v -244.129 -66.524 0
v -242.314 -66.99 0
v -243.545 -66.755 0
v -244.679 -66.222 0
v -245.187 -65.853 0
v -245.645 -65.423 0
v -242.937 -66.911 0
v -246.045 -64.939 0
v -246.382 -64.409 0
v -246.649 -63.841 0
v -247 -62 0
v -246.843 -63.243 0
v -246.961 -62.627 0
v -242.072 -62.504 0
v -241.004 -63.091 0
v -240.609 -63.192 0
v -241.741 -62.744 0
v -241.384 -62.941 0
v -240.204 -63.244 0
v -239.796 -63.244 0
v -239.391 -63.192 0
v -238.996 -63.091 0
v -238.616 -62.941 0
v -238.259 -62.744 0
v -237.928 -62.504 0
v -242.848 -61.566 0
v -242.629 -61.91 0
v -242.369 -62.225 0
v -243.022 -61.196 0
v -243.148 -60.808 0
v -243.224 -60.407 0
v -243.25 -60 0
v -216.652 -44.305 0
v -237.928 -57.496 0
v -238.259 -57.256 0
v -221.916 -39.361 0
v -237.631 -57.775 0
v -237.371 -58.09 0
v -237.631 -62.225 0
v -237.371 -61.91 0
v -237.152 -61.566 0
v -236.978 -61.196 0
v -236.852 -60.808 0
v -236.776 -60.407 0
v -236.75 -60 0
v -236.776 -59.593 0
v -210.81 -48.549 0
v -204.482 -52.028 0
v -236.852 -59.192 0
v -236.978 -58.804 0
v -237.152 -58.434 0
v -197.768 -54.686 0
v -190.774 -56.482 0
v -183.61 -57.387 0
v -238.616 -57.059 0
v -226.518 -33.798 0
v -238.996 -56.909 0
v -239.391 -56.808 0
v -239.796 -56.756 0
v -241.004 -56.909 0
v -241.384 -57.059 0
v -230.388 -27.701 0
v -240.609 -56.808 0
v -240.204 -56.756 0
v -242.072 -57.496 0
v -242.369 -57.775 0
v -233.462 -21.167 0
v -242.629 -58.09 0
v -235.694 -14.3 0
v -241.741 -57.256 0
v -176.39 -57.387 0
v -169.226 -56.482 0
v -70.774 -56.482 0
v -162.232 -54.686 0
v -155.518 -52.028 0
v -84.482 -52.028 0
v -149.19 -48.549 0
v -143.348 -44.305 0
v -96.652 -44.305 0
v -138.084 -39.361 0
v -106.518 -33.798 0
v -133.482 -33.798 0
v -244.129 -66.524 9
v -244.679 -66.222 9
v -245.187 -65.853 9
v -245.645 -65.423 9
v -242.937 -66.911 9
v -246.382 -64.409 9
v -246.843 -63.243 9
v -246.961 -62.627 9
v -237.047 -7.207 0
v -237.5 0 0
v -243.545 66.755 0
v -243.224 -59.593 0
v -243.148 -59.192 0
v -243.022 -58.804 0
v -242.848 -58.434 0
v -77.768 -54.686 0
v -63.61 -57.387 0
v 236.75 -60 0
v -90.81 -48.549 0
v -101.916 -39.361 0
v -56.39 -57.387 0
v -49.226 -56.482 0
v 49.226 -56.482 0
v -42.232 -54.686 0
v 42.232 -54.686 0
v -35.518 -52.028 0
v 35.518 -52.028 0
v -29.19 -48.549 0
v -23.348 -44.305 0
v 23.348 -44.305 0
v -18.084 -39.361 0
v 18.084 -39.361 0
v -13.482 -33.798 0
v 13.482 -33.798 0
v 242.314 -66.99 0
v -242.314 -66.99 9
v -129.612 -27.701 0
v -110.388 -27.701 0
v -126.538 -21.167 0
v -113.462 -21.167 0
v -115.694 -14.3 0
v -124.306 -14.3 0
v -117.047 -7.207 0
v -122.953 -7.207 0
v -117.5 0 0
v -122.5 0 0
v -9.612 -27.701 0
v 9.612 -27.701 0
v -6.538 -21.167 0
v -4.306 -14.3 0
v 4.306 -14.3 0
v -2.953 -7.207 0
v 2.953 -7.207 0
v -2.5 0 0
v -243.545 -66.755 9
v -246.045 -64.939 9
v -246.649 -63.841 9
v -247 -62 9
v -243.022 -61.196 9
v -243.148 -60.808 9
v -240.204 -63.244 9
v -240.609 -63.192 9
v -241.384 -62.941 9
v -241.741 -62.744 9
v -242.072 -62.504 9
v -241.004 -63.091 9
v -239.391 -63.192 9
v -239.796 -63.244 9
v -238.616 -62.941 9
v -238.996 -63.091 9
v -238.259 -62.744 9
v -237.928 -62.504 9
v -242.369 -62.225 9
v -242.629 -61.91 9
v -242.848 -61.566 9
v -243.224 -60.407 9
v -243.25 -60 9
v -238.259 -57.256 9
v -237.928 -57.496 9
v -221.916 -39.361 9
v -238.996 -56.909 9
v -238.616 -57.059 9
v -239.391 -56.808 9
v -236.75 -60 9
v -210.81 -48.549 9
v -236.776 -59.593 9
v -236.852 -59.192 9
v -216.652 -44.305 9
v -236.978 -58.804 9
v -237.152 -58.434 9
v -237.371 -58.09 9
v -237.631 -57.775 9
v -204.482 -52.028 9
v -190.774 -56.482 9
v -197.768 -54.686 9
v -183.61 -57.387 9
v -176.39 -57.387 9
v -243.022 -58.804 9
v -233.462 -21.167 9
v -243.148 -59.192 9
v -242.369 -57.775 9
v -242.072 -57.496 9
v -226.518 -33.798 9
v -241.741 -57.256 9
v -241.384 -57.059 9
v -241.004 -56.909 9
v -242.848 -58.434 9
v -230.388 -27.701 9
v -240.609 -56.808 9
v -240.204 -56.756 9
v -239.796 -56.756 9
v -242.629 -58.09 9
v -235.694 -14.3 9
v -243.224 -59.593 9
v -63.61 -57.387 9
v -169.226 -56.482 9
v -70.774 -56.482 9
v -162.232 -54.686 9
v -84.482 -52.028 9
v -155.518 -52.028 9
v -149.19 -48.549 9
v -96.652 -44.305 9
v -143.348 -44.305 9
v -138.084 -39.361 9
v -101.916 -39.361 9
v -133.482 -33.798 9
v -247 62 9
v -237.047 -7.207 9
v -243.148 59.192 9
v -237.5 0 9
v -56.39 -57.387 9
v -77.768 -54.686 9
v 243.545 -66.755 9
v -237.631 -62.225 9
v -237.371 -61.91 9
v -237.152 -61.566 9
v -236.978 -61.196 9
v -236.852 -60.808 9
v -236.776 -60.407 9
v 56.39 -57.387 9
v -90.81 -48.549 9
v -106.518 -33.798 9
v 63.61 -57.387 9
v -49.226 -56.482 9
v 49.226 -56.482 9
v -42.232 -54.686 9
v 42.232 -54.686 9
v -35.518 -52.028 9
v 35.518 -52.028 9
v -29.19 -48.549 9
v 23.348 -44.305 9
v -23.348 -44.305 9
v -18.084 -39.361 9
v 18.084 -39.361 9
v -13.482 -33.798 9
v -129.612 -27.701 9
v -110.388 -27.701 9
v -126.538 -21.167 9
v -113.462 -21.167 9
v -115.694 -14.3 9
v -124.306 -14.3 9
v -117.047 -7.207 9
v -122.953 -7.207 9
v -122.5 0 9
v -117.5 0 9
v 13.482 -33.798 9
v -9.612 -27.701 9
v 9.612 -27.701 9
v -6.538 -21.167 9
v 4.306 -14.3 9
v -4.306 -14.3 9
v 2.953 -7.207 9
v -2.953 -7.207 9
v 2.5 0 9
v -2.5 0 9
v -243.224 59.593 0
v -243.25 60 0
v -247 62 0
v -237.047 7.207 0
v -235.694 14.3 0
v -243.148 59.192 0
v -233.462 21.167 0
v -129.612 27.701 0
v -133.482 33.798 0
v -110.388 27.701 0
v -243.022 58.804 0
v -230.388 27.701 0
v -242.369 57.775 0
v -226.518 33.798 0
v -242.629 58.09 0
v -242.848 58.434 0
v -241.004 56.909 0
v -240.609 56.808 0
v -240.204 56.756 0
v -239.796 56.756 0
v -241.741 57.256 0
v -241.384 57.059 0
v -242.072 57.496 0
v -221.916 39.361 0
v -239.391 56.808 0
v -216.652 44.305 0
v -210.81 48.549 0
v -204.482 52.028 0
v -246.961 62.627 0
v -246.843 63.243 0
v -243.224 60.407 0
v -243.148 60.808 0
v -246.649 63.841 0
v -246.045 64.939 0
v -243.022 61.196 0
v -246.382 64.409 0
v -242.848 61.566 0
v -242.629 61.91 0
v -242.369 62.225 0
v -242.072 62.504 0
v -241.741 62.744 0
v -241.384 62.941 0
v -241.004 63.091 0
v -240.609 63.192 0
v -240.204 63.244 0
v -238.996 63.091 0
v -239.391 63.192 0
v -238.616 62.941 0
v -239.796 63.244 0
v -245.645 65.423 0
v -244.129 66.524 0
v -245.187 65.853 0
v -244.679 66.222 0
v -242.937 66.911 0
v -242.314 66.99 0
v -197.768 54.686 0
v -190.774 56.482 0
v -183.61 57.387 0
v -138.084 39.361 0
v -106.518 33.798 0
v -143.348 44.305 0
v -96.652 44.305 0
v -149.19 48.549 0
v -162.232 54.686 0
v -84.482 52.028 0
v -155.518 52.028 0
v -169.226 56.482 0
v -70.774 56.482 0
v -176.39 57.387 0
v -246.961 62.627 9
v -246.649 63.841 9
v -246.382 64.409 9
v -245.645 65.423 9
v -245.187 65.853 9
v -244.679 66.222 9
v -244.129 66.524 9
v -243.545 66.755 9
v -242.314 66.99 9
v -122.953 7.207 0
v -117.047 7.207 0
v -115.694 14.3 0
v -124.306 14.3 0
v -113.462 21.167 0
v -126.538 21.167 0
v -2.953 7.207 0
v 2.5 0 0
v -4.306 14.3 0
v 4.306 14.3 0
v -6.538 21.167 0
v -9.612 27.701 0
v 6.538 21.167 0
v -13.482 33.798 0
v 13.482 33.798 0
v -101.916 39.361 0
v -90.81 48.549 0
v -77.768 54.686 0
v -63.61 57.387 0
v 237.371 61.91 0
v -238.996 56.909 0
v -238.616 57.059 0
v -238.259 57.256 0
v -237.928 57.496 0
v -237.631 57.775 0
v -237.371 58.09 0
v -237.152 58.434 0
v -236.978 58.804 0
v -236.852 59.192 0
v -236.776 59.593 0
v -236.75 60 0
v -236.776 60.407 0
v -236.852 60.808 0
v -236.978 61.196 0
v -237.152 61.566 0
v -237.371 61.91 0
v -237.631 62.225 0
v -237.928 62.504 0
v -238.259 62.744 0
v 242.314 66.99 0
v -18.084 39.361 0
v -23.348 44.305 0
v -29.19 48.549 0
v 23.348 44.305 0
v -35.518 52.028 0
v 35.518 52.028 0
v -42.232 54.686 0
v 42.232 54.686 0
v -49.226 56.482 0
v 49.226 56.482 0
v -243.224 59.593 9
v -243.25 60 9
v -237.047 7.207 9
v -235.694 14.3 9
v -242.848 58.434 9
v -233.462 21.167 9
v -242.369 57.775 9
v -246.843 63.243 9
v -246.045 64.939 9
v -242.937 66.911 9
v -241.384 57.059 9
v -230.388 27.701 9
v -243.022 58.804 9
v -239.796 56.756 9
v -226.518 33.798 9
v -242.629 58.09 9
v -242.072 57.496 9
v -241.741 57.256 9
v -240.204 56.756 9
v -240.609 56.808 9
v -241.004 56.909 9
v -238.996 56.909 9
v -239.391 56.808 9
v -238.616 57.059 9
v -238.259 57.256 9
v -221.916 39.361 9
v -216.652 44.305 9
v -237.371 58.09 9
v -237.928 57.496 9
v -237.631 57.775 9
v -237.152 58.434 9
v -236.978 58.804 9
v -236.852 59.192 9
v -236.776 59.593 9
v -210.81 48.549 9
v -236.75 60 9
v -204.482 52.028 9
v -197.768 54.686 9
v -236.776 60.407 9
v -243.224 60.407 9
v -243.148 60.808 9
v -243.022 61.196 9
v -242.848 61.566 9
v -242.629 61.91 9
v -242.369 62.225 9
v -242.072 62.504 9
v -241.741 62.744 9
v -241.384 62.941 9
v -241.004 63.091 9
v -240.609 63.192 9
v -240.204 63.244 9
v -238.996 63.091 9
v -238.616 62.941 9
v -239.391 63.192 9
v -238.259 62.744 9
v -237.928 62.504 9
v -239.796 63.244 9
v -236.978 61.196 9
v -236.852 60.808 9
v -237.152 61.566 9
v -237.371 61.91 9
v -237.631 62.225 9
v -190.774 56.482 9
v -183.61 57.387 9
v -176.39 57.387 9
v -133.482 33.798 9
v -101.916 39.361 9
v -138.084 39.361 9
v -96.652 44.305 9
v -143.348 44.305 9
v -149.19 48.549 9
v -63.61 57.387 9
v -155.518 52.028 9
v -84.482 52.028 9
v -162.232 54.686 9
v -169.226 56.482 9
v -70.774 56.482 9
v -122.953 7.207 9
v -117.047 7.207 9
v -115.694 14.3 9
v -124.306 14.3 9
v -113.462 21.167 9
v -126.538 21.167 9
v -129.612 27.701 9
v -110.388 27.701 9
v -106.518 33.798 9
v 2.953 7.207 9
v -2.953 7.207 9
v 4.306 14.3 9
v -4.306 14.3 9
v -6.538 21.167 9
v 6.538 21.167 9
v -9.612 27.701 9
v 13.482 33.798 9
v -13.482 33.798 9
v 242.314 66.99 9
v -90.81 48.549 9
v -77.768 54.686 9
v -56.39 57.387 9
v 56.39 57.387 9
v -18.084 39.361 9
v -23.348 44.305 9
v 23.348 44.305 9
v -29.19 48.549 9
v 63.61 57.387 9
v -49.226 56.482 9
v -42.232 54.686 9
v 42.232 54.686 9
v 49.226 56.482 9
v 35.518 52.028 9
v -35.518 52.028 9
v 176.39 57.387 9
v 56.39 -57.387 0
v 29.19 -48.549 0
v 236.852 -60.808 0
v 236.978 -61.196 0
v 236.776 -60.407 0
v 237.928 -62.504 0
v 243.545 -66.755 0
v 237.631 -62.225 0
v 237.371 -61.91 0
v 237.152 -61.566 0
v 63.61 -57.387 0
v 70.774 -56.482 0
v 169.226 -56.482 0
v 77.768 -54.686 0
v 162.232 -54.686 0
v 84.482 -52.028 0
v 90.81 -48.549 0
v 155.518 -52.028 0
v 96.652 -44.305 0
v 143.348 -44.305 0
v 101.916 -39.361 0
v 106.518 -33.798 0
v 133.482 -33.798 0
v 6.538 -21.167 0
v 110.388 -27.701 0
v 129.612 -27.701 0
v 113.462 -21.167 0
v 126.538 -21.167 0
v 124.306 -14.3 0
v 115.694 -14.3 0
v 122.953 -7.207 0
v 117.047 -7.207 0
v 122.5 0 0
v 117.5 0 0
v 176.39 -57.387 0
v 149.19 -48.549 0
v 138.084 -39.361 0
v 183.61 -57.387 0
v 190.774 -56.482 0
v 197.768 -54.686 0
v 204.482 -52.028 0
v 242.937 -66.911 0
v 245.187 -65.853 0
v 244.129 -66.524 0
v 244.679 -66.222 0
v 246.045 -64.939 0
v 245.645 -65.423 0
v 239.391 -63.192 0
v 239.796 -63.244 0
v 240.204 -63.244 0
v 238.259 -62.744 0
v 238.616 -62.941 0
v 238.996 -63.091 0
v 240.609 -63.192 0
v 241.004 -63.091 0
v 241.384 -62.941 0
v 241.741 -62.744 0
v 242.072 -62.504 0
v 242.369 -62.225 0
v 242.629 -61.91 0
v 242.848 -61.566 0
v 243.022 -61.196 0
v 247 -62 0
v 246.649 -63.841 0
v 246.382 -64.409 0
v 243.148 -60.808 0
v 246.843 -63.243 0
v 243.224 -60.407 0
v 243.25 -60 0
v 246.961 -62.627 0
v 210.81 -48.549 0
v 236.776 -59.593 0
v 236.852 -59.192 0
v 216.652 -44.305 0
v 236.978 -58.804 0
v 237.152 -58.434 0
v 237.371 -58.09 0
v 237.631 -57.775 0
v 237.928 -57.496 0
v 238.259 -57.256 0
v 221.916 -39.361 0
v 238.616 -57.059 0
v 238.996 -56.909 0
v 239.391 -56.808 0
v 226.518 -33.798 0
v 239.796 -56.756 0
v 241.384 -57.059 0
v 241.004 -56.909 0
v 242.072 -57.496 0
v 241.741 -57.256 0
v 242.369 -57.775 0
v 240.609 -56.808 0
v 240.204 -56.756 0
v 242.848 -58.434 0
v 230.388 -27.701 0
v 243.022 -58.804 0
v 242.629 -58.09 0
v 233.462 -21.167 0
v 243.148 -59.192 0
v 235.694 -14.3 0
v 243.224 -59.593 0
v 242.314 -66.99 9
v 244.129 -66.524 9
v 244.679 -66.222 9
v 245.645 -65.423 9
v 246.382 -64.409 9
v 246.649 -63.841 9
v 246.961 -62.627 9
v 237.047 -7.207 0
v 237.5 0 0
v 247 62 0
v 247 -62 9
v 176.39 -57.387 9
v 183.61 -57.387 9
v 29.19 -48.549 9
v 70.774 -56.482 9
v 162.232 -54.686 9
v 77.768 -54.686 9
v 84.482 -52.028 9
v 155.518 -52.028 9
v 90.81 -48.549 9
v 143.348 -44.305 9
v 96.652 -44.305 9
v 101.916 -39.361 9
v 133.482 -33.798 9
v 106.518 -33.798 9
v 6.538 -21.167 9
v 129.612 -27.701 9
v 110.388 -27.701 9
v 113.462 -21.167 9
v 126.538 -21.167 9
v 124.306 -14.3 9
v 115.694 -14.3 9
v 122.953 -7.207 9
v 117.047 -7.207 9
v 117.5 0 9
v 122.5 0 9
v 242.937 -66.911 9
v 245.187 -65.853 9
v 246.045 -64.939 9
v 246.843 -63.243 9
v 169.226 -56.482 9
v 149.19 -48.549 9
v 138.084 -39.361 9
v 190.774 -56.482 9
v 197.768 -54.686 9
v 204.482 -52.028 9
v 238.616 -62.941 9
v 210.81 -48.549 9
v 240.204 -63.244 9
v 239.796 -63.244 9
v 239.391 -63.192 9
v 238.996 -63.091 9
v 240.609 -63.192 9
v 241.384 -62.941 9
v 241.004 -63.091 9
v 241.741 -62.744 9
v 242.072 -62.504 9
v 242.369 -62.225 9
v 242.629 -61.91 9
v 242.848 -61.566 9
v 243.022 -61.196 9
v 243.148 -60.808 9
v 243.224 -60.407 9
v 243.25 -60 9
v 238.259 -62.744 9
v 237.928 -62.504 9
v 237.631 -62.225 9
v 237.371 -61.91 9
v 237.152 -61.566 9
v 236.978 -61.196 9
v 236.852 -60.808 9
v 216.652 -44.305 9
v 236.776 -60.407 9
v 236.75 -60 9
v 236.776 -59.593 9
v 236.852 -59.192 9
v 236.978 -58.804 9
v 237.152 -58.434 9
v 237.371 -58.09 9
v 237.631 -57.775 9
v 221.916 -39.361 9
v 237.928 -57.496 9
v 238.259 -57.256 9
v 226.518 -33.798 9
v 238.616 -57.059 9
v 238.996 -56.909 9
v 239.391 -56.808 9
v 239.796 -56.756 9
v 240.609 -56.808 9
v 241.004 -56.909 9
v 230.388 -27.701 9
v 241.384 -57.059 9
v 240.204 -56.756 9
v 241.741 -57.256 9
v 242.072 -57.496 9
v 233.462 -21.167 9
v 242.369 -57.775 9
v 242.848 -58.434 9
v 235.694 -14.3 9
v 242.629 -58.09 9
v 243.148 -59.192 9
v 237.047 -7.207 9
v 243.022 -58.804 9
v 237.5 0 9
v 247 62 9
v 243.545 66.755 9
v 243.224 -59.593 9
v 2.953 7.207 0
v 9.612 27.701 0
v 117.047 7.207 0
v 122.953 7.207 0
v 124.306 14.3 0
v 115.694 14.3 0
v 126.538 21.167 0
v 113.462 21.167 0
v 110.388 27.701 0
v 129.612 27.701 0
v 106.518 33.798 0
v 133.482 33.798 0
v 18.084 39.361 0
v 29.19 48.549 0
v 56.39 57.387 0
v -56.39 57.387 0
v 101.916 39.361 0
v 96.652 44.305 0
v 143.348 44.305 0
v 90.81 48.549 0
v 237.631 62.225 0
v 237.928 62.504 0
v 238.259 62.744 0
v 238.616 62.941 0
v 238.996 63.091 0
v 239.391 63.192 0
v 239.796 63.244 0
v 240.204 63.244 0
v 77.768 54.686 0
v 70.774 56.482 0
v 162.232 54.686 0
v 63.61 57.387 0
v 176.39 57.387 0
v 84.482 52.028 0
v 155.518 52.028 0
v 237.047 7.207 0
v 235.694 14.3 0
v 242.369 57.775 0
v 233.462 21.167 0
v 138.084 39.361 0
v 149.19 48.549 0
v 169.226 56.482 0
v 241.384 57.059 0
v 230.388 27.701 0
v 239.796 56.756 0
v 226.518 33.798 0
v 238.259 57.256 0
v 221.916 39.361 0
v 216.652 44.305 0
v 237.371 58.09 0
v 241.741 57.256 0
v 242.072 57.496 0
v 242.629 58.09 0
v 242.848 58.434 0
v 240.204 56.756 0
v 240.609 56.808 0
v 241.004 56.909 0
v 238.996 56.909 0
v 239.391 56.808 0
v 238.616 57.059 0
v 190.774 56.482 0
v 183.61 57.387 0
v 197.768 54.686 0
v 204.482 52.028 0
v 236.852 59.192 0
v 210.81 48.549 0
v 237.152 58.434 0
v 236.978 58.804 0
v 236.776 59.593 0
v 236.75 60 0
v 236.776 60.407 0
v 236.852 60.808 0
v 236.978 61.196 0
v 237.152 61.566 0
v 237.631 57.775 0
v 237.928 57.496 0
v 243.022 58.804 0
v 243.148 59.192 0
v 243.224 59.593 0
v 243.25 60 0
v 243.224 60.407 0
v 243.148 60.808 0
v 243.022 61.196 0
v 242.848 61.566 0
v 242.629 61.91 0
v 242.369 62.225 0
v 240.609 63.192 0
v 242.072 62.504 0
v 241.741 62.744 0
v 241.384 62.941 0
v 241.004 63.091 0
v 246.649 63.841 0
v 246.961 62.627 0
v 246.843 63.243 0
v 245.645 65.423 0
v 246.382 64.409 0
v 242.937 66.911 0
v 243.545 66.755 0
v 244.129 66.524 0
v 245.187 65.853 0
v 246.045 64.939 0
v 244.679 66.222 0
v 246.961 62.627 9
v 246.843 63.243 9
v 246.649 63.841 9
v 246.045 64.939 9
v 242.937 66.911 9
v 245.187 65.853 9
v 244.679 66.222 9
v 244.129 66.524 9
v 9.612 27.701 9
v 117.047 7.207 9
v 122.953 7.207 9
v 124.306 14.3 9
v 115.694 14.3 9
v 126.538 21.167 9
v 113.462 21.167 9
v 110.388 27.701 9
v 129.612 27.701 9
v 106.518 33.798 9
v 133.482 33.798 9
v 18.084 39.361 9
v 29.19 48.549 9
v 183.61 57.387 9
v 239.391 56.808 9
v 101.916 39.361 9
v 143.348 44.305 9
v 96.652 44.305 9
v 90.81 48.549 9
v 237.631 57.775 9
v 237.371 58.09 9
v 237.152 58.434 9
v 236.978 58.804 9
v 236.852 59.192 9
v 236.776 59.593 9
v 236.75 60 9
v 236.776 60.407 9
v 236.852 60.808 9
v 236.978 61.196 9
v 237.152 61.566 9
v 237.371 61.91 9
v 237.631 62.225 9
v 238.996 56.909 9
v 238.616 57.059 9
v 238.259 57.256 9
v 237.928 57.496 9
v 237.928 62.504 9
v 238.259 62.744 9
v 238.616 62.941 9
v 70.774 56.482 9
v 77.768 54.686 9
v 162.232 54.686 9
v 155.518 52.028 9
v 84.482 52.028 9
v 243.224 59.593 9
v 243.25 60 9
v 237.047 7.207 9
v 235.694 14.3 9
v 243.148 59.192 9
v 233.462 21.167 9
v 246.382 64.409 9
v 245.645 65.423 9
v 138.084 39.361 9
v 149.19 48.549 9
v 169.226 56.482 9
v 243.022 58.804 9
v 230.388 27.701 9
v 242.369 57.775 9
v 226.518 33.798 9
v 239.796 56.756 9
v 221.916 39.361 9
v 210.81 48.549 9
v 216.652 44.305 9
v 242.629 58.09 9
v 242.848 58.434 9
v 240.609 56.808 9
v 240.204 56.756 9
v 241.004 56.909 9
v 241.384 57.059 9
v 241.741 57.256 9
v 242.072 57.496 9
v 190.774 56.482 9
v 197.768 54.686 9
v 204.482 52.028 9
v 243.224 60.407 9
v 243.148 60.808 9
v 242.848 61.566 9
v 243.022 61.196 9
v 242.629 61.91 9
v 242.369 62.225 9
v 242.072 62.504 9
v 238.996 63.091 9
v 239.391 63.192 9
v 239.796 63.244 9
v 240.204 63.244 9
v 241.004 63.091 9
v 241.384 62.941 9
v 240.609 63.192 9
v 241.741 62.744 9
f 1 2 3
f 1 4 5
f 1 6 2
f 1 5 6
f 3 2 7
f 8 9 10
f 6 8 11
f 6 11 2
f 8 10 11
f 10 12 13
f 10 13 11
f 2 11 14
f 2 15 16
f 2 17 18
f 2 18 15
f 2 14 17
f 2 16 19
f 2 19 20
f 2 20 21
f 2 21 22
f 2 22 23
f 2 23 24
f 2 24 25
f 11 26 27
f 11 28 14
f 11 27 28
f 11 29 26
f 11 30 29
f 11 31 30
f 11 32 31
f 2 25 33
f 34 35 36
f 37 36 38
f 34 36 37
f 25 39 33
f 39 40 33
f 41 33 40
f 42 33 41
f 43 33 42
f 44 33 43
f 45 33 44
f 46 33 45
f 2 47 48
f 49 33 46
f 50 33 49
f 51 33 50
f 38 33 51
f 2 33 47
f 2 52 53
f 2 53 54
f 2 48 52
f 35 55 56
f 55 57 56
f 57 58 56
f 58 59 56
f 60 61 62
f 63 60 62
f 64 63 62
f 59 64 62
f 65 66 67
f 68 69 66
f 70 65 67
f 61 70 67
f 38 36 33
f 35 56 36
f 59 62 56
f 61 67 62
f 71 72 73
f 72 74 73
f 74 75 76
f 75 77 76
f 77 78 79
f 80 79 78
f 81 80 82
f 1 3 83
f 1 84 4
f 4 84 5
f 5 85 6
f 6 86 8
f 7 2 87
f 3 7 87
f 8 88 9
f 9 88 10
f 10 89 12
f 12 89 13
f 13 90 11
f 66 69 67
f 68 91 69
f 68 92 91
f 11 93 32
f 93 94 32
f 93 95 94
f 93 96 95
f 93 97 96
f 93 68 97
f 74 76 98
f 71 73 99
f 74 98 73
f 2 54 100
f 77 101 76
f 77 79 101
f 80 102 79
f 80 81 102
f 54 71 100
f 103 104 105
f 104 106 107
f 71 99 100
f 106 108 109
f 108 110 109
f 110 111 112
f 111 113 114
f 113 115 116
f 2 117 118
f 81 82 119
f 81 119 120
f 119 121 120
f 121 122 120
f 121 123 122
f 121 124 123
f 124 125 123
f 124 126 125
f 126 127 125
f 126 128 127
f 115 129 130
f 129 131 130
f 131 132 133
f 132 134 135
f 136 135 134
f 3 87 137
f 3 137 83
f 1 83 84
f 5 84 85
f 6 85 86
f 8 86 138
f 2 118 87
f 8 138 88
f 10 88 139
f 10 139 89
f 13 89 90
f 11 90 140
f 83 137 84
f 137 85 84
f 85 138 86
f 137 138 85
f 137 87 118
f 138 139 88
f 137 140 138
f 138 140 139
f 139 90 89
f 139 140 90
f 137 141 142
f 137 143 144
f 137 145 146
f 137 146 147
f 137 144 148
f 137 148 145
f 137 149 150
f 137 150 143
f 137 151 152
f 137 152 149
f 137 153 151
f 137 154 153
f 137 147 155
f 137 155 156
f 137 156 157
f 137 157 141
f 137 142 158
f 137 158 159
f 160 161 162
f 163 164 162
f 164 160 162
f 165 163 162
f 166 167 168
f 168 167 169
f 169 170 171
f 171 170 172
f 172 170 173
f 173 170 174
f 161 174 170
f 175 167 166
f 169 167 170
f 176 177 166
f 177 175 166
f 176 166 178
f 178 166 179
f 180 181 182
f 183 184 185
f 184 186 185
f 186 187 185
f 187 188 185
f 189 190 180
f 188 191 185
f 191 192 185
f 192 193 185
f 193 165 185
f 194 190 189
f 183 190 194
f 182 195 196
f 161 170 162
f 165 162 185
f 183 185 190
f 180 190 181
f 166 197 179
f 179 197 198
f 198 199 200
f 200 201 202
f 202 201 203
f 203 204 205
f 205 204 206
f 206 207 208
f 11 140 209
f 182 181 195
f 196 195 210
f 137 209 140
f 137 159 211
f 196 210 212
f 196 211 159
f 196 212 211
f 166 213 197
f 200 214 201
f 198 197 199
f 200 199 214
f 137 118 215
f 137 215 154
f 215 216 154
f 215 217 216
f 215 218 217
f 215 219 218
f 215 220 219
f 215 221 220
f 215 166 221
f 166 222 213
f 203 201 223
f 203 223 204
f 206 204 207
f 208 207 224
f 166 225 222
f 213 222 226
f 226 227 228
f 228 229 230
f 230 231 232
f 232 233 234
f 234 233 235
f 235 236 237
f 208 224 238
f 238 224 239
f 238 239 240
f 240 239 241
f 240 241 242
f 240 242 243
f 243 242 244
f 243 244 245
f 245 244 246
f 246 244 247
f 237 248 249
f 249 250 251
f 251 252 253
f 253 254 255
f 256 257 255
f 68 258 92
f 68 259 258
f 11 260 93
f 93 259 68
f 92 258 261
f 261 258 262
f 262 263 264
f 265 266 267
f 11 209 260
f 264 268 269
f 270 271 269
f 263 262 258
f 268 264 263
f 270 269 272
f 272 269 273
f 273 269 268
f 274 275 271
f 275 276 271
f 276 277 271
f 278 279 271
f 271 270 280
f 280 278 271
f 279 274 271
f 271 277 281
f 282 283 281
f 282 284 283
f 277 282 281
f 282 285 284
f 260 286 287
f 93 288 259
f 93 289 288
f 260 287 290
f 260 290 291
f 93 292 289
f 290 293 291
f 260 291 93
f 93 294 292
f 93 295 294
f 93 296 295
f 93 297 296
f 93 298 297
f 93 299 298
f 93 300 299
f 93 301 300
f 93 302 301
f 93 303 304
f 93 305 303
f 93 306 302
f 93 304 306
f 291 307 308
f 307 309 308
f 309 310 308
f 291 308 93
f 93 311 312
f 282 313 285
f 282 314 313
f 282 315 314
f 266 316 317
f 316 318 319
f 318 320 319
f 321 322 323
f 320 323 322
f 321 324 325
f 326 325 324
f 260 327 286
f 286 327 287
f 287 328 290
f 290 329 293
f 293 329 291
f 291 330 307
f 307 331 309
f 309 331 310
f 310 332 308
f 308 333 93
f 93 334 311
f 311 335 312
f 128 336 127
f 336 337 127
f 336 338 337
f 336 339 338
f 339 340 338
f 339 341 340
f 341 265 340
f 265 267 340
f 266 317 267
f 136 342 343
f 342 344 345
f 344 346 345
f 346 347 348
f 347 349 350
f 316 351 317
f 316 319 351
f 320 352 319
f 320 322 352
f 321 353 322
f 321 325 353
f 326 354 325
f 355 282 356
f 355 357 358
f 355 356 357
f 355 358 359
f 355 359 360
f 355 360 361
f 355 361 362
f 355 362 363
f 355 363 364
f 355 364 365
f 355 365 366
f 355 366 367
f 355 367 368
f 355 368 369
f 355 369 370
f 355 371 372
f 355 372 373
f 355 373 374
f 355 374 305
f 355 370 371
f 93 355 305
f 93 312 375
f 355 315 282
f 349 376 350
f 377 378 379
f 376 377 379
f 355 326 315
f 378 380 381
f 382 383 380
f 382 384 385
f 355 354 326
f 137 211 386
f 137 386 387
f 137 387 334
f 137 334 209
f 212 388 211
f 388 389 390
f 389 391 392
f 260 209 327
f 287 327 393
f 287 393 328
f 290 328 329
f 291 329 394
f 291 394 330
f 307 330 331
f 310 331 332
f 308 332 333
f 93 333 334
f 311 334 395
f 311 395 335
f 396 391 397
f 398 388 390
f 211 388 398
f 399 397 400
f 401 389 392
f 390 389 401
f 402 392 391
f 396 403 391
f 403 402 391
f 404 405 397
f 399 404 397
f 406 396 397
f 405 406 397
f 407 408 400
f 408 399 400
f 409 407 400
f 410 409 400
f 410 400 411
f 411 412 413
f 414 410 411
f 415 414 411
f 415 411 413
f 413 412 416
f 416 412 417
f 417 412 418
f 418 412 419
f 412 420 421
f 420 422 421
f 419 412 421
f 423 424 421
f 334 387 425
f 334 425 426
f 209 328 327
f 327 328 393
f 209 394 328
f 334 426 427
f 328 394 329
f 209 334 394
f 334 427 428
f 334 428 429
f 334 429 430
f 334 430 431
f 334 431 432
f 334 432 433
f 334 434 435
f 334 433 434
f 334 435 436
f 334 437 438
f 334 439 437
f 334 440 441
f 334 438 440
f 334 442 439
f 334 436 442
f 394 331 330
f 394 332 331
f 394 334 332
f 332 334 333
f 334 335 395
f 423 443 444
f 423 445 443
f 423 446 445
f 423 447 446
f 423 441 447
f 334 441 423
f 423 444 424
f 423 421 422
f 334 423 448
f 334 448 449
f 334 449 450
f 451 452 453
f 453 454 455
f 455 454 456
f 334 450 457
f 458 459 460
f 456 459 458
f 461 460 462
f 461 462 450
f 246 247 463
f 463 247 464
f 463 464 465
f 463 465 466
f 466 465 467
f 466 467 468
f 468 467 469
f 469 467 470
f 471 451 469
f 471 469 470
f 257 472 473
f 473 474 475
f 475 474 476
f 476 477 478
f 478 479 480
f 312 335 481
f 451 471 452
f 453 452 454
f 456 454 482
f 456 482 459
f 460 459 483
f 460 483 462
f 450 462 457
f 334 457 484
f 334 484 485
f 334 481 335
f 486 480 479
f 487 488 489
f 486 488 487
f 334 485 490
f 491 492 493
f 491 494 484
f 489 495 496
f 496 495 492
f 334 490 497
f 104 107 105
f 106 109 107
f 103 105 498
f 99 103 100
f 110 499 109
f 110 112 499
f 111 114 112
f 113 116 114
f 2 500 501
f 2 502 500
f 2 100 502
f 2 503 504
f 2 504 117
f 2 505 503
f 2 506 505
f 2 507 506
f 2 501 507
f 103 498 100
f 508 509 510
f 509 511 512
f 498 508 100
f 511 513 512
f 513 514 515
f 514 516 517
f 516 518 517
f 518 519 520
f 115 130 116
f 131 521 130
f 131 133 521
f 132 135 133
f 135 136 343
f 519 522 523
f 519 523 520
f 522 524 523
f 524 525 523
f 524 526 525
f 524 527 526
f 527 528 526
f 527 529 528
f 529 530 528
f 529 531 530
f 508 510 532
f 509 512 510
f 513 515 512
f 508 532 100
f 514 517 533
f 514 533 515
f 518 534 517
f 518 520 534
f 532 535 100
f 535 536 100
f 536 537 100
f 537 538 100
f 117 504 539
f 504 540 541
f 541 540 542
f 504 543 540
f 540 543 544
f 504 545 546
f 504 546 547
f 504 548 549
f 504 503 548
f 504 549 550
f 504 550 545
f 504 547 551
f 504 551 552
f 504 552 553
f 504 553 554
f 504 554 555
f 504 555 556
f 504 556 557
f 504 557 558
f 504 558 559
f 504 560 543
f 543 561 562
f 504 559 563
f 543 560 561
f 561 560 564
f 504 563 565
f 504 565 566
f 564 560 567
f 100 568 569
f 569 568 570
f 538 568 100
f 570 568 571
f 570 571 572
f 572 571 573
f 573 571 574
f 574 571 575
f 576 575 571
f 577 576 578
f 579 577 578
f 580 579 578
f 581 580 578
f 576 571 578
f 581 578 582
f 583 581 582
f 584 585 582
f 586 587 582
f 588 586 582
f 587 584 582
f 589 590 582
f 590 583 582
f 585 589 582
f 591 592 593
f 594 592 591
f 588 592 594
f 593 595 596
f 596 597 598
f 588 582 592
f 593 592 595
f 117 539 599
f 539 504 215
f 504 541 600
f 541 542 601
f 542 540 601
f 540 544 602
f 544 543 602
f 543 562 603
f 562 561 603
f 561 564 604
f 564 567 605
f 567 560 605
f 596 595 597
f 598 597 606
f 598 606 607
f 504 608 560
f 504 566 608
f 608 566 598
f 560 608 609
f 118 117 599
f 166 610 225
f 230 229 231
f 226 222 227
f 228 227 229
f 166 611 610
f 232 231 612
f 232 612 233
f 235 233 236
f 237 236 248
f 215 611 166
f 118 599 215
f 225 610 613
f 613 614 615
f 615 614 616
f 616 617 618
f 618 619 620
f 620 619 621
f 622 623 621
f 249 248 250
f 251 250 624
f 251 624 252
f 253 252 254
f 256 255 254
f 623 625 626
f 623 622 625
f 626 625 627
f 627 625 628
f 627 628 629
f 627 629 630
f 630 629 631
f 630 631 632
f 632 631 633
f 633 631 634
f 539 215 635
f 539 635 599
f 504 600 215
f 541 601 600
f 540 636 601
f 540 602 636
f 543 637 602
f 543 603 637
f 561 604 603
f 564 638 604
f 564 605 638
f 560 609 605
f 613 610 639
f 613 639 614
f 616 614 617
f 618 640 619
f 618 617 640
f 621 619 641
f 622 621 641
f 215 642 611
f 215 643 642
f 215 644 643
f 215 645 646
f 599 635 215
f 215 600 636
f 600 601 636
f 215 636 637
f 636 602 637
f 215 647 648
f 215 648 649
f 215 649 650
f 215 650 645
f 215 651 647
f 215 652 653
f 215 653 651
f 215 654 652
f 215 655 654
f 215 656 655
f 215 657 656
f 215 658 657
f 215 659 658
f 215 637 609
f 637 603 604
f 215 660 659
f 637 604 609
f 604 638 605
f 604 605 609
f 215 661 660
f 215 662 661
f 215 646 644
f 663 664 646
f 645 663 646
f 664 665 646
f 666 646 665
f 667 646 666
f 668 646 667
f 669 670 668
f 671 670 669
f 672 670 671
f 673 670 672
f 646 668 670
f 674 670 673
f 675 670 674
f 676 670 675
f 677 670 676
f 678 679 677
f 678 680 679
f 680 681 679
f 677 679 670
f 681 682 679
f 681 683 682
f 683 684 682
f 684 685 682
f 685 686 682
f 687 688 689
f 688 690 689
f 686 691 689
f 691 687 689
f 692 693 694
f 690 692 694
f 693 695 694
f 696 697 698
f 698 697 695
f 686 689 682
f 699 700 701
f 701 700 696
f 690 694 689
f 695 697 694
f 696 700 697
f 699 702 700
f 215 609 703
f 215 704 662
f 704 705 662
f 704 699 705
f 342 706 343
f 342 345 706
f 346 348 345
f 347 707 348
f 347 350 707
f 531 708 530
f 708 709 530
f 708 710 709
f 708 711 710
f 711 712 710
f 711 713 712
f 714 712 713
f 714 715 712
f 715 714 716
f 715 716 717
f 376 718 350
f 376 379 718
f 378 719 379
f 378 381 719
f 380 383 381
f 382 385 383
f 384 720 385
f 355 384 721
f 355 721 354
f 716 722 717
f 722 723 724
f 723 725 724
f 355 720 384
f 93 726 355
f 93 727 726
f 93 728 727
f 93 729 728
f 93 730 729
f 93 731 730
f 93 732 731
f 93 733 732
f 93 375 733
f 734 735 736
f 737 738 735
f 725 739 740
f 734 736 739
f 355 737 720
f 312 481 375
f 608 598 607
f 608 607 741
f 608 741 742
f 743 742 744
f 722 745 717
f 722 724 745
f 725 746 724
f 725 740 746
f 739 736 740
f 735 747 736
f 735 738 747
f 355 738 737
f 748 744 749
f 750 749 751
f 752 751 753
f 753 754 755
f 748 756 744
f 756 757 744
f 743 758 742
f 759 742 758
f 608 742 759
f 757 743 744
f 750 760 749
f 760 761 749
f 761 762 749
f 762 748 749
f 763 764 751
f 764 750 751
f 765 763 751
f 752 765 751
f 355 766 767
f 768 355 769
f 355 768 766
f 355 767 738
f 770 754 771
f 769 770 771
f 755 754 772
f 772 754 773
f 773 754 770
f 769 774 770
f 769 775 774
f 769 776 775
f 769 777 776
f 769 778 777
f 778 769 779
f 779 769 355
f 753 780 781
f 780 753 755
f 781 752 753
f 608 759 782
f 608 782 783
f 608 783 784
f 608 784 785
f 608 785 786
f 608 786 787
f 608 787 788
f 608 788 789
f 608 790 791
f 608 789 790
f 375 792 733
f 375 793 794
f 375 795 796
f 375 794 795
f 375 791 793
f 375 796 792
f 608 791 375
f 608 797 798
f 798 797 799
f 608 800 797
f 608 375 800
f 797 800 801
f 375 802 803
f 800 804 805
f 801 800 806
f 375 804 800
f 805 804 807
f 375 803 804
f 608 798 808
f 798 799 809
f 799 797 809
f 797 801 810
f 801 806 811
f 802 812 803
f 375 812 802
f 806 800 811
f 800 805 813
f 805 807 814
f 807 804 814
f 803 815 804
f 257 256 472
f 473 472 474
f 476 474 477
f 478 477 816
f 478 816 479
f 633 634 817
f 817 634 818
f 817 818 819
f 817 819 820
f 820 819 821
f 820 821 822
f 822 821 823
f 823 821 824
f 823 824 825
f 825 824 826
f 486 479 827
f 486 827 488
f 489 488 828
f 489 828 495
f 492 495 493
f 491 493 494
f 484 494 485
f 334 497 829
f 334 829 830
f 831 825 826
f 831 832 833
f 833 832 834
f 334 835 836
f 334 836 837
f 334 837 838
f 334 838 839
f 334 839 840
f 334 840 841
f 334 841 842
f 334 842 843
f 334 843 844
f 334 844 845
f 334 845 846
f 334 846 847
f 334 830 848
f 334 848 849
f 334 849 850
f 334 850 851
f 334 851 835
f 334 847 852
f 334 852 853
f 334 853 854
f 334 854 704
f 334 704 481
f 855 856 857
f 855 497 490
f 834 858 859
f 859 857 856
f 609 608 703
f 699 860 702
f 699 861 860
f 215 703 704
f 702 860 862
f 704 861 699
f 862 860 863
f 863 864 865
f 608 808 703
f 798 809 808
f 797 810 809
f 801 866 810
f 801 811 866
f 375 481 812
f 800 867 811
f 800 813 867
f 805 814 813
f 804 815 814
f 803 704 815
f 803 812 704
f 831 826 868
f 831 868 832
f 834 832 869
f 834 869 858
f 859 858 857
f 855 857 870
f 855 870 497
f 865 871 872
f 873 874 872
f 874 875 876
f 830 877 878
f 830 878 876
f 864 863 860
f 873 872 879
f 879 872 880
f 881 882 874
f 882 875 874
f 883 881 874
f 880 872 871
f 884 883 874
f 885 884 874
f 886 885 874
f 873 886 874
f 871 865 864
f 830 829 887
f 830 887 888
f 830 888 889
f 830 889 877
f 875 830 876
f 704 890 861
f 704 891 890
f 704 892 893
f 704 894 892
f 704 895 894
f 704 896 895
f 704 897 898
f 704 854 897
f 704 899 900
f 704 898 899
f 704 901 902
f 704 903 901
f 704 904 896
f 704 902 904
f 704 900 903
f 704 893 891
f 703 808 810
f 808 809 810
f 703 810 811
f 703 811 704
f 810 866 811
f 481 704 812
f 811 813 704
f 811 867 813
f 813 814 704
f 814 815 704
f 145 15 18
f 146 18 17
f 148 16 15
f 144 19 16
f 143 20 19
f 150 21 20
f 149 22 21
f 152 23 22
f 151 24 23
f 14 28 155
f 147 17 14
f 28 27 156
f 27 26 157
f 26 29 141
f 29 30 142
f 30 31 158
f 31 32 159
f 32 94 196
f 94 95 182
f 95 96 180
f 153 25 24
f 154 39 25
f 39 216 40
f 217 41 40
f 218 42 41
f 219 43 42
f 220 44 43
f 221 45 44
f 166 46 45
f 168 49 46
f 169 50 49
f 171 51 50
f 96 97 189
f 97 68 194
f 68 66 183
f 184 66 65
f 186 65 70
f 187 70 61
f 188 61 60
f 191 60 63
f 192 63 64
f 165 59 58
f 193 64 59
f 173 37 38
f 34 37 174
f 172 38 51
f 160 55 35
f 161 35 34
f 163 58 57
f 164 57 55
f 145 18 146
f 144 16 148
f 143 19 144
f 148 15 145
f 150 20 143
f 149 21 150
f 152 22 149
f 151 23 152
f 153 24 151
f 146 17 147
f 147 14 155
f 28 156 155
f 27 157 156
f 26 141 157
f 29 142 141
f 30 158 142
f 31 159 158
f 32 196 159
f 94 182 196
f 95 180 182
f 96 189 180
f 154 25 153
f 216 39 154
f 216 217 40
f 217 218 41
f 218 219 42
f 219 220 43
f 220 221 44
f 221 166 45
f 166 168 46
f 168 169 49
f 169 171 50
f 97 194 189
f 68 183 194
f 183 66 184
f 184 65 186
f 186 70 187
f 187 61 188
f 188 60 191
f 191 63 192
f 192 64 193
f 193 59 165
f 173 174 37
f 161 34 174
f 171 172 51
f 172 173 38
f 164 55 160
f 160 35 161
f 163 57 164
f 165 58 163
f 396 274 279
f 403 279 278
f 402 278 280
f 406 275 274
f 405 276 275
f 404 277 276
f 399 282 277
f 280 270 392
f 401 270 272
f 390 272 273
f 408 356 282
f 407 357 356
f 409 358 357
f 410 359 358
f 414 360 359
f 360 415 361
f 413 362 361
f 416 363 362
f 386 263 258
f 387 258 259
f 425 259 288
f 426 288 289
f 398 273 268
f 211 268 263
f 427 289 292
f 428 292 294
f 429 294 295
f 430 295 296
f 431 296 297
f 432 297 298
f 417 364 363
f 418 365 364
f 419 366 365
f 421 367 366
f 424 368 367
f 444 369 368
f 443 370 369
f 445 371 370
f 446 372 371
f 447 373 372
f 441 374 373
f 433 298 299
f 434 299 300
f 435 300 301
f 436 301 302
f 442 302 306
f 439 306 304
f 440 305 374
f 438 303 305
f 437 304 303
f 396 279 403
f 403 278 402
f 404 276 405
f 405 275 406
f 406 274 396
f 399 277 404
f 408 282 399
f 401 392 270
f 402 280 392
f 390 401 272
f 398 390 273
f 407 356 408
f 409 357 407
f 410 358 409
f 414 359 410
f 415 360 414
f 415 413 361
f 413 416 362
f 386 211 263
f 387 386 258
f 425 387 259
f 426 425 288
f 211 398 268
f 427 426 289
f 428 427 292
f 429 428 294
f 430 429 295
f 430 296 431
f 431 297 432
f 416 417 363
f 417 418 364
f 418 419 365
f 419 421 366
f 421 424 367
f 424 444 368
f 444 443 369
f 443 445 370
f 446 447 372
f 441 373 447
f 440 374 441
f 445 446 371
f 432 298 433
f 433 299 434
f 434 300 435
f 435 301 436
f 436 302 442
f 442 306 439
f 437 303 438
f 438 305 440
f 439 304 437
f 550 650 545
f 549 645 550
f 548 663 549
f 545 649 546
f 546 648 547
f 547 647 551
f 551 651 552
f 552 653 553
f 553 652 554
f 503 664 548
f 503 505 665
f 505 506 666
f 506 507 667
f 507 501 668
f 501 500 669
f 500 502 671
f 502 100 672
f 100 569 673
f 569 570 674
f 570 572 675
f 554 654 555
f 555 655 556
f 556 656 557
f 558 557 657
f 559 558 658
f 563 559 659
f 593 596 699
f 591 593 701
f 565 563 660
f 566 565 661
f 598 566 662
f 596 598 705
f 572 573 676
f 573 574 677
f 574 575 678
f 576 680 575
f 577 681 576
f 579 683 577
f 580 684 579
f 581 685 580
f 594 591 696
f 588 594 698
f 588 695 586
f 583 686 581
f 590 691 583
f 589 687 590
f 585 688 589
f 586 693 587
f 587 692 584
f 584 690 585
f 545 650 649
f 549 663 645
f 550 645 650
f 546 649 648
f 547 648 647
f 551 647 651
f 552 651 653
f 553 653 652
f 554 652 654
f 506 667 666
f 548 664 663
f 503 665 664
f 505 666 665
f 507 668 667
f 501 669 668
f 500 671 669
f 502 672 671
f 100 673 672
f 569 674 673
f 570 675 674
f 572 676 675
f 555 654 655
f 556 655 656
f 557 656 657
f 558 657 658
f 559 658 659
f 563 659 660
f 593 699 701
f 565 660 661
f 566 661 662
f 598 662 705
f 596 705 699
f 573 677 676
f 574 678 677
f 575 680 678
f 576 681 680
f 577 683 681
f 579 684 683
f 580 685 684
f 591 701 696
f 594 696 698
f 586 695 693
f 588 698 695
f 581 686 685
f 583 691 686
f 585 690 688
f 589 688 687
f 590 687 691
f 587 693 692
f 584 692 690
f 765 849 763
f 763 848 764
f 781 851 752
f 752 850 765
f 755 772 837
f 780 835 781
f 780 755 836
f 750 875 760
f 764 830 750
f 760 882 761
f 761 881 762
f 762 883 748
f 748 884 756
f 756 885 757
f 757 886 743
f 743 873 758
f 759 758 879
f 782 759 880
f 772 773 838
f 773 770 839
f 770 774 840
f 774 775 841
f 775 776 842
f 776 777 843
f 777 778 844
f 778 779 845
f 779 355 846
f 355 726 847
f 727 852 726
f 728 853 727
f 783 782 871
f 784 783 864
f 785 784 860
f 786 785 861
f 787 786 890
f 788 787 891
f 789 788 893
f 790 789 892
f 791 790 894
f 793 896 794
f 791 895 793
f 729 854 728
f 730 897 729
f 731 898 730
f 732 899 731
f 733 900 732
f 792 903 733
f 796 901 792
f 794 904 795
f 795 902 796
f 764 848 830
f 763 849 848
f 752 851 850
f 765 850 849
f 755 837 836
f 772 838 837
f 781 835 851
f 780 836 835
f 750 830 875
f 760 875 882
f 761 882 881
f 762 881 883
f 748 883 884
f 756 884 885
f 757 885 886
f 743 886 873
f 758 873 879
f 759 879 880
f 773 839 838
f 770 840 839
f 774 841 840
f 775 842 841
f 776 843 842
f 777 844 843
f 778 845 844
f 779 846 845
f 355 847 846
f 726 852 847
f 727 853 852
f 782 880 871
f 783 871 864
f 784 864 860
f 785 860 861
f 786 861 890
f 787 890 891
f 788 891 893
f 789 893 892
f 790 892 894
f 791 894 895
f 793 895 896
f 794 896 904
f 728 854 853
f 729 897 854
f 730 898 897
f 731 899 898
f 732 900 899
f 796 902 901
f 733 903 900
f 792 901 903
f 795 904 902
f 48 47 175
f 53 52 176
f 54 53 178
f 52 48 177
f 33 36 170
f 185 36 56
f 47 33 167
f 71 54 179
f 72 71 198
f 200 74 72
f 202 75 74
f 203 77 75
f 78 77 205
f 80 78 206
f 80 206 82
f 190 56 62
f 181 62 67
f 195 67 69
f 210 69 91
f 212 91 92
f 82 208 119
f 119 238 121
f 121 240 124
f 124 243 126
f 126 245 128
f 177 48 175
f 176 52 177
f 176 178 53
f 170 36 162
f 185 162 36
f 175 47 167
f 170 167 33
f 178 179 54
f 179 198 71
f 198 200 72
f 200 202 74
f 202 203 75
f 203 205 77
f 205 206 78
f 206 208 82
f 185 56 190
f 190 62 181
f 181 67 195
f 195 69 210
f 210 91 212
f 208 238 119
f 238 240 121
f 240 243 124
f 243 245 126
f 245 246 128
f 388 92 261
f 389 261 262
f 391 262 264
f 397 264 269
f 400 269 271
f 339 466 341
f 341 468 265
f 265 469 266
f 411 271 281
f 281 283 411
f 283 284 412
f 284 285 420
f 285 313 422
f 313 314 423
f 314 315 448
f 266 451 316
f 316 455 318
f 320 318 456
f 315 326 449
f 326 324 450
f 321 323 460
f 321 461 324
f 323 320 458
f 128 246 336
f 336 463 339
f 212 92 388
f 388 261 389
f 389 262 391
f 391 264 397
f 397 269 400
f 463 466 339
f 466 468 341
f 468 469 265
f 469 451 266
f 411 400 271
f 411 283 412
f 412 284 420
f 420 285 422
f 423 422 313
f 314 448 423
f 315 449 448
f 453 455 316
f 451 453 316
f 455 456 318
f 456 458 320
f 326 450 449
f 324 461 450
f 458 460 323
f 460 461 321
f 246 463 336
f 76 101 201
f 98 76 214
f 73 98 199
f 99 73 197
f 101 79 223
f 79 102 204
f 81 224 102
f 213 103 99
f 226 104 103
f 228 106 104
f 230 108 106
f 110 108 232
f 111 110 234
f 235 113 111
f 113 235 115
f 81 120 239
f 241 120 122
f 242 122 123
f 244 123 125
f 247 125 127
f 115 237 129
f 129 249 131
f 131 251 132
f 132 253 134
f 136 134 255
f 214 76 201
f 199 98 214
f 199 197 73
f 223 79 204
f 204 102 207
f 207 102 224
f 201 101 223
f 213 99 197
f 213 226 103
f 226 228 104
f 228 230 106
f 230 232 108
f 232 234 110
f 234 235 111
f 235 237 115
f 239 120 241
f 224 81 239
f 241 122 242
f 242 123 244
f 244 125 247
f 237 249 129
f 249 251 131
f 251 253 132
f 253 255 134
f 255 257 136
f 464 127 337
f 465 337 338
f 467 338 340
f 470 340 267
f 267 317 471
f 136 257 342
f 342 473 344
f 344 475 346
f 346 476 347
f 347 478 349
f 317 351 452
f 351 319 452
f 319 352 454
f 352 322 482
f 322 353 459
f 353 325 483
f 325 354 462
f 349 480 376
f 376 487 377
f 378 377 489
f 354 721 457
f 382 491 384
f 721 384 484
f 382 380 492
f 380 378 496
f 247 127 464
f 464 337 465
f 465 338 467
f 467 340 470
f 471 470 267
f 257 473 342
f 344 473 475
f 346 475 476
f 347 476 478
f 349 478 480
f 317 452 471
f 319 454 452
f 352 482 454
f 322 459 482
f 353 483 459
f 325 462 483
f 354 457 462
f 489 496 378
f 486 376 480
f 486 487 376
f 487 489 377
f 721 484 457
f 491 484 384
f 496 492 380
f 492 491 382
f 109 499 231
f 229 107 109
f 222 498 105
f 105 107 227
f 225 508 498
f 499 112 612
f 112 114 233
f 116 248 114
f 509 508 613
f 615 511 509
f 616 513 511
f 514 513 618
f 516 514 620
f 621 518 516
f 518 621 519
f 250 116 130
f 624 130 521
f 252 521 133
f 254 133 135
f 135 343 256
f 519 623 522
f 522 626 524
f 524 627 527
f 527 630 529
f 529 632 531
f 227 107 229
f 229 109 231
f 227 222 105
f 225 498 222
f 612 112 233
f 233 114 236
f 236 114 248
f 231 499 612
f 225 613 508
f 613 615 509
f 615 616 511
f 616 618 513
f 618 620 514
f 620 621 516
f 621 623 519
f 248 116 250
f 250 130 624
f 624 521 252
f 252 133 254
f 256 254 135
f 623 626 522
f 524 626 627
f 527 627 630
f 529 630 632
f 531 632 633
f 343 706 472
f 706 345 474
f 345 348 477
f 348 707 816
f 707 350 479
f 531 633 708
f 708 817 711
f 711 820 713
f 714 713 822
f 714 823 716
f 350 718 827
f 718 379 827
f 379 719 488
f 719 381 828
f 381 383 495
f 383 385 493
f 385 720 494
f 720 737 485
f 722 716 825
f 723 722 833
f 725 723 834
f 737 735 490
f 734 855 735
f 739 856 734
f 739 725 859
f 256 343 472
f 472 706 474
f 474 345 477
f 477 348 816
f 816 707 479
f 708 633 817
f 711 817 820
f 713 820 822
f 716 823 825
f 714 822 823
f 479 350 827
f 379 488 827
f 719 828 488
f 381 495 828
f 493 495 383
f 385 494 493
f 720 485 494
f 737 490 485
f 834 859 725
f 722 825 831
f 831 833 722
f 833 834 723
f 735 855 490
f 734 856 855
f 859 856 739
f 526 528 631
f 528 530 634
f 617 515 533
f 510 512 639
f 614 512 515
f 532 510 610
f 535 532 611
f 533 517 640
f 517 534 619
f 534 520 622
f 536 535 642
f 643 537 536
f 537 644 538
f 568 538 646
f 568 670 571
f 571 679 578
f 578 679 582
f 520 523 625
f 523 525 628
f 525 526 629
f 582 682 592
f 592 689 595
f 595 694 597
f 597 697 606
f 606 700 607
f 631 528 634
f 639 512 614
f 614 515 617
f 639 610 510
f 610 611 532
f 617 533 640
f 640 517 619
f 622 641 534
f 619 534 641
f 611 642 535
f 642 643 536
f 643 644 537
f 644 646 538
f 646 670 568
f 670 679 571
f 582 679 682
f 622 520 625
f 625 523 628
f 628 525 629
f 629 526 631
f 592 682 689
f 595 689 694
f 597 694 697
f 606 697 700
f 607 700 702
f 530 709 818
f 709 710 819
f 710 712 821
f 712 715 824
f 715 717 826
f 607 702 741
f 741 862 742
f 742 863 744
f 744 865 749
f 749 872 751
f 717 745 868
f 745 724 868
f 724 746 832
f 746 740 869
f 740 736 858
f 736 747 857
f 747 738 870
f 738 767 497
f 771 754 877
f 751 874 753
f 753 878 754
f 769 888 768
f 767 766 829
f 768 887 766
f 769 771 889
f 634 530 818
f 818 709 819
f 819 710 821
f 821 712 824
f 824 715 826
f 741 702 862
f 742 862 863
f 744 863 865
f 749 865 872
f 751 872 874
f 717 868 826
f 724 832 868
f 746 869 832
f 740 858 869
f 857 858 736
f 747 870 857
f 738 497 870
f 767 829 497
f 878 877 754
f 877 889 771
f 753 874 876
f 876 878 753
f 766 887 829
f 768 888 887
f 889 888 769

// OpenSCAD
$fn = 50;

difference() {
	union() {
		hull() {
			translate(v = [-242.0, 62.0, 0]) {
				cylinder(h = 9, r = 5);
			}
			translate(v = [242.0, 62.0, 0]) {
				cylinder(h = 9, r = 5);
			}
			translate(v = [-242.0, -62.0, 0]) {
				cylinder(h = 9, r = 5);
			}
			translate(v = [242.0, -62.0, 0]) {
				cylinder(h = 9, r = 5);
			}
		}
	}
	union() {
		translate(v = [-240.0, -60.0, -100.0]) {
			cylinder(h = 200, r = 3.25);
		}
		translate(v = [-240.0, 60.0, -100.0]) {
			cylinder(h = 200, r = 3.25);
		}
		translate(v = [240.0, -60.0, -100.0]) {
			cylinder(h = 200, r = 3.25);
		}
		translate(v = [240.0, 60.0, -100.0]) {
			cylinder(h = 200, r = 3.25);
		}
		translate(v = [-240.0, -60.0, -100.0]) {
			cylinder(h = 200, r = 1.8);
		}
		translate(v = [-240.0, 60.0, -100.0]) {
			cylinder(h = 200, r = 1.8);
		}
		translate(v = [240.0, -60.0, -100.0]) {
			cylinder(h = 200, r = 1.8);
		}
		translate(v = [240.0, 60.0, -100.0]) {
			cylinder(h = 200, r = 1.8);
		}
		translate(v = [-180.0, 0, 0.0]) {
			cylinder(h = 9, r = 57.5);
		}
		translate(v = [-60.0, 0, 0.0]) {
			cylinder(h = 9, r = 57.5);
		}
		translate(v = [60.0, 0, 0.0]) {
			cylinder(h = 9, r = 57.5);
		}
		translate(v = [180.0, 0, 0.0]) {
			cylinder(h = 9, r = 57.5);
		}
	}
}
